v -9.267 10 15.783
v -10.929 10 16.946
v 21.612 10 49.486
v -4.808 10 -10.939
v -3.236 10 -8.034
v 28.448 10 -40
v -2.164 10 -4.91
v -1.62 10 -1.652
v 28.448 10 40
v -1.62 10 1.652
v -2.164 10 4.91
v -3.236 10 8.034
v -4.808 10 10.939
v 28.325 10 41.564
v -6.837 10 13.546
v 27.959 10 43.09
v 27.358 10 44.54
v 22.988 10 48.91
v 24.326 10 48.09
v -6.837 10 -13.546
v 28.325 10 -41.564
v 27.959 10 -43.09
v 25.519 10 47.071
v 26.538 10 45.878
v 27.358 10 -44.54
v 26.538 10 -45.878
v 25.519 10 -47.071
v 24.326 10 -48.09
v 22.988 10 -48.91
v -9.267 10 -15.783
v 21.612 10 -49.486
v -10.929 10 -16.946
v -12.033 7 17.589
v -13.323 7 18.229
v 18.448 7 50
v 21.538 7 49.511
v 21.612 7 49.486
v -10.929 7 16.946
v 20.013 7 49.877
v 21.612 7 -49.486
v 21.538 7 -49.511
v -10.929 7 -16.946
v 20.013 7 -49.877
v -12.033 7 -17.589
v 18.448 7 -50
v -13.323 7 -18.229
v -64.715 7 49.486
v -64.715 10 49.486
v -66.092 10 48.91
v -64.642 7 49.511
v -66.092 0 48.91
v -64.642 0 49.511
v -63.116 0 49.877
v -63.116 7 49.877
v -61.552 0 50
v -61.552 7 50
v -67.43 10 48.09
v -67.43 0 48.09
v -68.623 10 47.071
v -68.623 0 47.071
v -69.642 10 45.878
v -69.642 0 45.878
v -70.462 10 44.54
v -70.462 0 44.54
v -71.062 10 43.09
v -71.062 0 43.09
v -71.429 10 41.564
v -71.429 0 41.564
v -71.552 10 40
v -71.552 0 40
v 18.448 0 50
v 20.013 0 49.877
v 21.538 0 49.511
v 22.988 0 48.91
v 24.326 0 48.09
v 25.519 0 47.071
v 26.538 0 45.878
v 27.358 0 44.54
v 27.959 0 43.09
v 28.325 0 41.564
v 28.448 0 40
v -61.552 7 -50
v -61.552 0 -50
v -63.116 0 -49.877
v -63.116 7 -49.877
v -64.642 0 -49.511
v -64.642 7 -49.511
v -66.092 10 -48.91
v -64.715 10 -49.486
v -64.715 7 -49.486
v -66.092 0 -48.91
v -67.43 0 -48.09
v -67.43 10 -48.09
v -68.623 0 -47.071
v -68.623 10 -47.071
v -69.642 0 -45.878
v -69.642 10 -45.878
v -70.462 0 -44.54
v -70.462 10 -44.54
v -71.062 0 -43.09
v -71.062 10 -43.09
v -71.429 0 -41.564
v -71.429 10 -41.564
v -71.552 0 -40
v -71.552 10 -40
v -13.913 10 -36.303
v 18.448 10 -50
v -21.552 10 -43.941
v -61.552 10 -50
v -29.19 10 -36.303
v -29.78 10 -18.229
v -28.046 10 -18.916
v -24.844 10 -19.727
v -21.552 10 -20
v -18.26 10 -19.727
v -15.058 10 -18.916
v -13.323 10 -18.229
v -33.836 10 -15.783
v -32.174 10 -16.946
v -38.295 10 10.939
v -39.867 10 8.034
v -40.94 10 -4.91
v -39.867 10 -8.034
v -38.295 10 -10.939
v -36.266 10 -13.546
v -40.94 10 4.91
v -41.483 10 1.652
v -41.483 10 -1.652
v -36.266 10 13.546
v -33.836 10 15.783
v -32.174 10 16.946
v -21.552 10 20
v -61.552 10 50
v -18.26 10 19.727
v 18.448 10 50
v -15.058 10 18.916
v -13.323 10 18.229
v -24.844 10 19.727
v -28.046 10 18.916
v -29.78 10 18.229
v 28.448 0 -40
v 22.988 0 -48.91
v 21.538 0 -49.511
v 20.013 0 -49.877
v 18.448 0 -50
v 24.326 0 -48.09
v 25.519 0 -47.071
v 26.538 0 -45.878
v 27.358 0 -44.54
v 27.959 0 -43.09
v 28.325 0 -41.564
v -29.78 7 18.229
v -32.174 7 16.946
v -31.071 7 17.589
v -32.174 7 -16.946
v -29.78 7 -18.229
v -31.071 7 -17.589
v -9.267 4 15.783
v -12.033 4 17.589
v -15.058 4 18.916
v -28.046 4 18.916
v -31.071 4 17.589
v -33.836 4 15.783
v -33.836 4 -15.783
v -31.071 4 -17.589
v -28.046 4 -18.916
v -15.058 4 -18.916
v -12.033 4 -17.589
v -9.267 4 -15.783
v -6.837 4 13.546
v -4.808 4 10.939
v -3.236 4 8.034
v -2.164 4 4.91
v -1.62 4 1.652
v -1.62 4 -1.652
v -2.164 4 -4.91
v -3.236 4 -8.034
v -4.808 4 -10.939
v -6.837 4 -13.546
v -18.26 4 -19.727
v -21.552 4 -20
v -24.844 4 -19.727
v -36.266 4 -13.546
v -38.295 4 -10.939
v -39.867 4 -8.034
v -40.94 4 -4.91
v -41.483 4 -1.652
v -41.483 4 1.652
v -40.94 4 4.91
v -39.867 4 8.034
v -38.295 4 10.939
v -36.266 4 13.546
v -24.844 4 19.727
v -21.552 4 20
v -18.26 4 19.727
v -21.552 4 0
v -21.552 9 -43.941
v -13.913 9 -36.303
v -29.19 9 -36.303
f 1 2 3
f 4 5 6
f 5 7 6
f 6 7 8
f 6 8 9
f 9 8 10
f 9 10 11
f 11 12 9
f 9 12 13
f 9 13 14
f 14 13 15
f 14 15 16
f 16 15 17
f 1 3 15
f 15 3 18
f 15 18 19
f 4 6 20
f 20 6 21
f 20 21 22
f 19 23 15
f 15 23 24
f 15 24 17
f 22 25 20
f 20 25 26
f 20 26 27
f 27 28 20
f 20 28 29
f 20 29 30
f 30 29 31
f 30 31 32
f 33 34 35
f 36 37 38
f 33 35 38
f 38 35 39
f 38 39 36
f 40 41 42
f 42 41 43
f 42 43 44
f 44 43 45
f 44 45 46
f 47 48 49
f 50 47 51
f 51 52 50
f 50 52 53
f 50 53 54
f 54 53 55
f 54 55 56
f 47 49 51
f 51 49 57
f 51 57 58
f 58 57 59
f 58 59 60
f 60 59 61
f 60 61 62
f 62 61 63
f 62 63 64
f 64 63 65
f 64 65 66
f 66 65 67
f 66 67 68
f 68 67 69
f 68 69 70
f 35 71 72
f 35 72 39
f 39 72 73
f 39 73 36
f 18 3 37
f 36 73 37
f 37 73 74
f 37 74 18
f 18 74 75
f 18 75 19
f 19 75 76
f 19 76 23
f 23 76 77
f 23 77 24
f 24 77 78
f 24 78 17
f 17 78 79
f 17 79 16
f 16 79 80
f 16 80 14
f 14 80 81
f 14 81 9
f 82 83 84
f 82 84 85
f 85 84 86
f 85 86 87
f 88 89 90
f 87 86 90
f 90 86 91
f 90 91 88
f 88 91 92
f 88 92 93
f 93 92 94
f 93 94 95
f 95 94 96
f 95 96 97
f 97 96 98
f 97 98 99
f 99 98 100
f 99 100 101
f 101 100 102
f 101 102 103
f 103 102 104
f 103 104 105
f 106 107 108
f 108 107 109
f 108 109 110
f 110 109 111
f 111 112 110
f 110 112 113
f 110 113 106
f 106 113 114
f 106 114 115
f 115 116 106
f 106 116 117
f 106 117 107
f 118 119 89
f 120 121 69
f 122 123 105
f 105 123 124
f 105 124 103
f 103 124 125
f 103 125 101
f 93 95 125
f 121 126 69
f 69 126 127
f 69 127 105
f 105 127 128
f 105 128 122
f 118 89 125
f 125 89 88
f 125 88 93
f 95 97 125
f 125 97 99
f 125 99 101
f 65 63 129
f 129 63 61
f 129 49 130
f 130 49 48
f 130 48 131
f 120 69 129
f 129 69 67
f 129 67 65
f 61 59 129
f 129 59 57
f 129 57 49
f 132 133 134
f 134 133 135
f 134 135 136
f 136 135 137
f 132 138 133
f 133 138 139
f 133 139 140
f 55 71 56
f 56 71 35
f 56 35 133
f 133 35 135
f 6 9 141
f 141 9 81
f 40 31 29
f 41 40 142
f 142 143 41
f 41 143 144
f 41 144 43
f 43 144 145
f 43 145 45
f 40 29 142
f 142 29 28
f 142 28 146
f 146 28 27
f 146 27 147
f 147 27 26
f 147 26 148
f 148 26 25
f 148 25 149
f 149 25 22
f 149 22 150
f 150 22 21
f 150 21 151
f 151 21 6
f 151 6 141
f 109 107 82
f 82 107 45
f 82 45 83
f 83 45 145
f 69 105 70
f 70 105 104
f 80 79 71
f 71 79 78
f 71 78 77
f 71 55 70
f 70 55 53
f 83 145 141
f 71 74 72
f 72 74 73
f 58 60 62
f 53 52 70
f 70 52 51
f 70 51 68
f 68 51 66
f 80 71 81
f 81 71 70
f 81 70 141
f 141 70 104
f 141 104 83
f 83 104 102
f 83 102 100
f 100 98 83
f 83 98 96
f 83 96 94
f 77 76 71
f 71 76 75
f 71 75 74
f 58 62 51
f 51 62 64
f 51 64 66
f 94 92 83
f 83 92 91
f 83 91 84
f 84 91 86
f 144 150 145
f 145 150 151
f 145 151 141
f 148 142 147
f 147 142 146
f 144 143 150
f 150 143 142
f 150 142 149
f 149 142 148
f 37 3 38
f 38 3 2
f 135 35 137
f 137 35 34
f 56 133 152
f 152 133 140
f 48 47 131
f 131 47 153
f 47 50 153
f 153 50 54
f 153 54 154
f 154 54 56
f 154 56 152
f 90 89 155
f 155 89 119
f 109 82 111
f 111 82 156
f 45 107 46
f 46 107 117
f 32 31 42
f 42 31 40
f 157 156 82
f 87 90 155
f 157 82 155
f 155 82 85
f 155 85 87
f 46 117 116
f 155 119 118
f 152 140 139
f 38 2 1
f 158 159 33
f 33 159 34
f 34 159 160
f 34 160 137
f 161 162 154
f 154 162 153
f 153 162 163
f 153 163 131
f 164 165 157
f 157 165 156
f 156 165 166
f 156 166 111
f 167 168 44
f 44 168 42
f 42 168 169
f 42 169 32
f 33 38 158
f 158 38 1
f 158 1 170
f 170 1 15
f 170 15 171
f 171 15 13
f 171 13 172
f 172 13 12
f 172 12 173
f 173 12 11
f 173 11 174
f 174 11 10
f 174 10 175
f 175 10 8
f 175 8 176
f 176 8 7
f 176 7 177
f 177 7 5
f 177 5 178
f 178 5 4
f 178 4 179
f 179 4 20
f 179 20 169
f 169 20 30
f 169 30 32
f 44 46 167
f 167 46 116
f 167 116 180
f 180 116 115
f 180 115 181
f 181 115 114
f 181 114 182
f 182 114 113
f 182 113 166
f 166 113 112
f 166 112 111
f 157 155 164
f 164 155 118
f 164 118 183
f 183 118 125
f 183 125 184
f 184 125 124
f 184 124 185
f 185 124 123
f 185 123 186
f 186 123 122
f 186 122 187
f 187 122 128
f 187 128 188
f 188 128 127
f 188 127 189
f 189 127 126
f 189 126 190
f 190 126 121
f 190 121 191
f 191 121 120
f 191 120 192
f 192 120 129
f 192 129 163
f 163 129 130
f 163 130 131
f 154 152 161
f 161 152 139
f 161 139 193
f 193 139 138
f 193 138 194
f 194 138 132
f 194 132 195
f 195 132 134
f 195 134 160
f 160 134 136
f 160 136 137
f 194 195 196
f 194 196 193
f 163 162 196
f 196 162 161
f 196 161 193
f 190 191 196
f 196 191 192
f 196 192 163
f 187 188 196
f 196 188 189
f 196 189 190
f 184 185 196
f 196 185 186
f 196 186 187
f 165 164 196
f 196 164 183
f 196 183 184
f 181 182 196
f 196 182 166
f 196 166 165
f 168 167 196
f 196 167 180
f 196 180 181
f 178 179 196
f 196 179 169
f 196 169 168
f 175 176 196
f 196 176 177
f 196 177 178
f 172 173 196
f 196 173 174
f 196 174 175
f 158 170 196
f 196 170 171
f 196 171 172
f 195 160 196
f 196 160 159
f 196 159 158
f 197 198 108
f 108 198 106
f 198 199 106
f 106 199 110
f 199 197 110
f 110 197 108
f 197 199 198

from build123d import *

# Parameters (mm, degrees)
EXTRUDE_1_DEPTH     = 10
CUT_EXTRUDE_START   = -3
CUT_EXTRUDE_1_DEPTH = 3
SKETCH_3_R          = 20
CUT_EXTRUDE_2_DEPTH = 6
CUT_EXTRUDE_3_DEPTH = 1


with BuildPart() as part:
    # 草图1 → 凸台-拉伸1 (new body)
    with BuildSketch(Plane(origin=(0, 0, 0), x_dir=(1, 0, 0), z_dir=(0, 1, 0))):
        with BuildLine():
            Line((-61.551724138, 50), (18.448275862, 50))
            ThreePointArc((18.448275862, 50), (25.519343674, 47.071067812), (28.448275862, 40))
            Line((28.448275862, 40), (28.448275862, -40))
            ThreePointArc((28.448275862, -40), (25.519343674, -47.071067812), (18.448275862, -50))
            Line((18.448275862, -50), (-61.551724138, -50))
            ThreePointArc((-61.551724138, -50), (-68.62279195, -47.071067812), (-71.551724138, -40))
            Line((-71.551724138, -40), (-71.551724138, 40))
            ThreePointArc((-71.551724138, 40), (-68.62279195, 47.071067812), (-61.551724138, 50))
        make_face()
    extrude(amount=EXTRUDE_1_DEPTH)

    # 草图2 → 切除-拉伸1 (cut)
    with BuildSketch(Plane(origin=(0, 10, 0), x_dir=(1, 0, 0), z_dir=(0, 1, 0)).offset(CUT_EXTRUDE_START)):
        with BuildLine():
            Line((-21.551724138, 10), (-61.551724138, 50))
            ThreePointArc((-61.551724138, 50), (-63.154135948, 49.870778915), (-64.715134679, 49.486455279))
            Line((-64.715134679, 49.486455279), (-21.551724138, 6.323044738))
            Line((-21.551724138, 6.323044738), (21.611686403, 49.486455279))
            ThreePointArc((21.611686403, 49.486455279), (20.050687672, 49.870778915), (18.448275862, 50))
            Line((18.448275862, 50), (-21.551724138, 10))
        make_face()
        with BuildLine():
            Line((-21.551724138, -10), (18.448275862, -50))
            ThreePointArc((18.448275862, -50), (20.050687672, -49.870778915), (21.611686403, -49.486455279))
            Line((21.611686403, -49.486455279), (-21.551724138, -6.323044738))
            Line((-21.551724138, -6.323044738), (-64.715134679, -49.486455279))
            ThreePointArc((-64.715134679, -49.486455279), (-63.154135948, -49.870778915), (-61.551724138, -50))
            Line((-61.551724138, -50), (-21.551724138, -10))
        make_face()
    extrude(amount=CUT_EXTRUDE_1_DEPTH, mode=Mode.SUBTRACT)

    # 草图3 → 切除-拉伸2 (cut)
    with BuildSketch(Plane(origin=(0, 10, 0), x_dir=(1, 0, 0), z_dir=(0, 1, 0))):
        with Locations(Location((-21.551724138, 0, 0), (0, 0, 270))):
            Circle(SKETCH_3_R)
    extrude(amount=-CUT_EXTRUDE_2_DEPTH, mode=Mode.SUBTRACT)

    # 草图5 → 切除-拉伸3 (cut)
    with BuildSketch(Plane(origin=(0, 10, 0), x_dir=(1, 0, 0), z_dir=(0, 1, 0))):
        Polygon((-21.551724138, 43.940949844), (-29.190091611, 36.302582371), (-13.913356665, 36.302582371), align=None)
    extrude(amount=-CUT_EXTRUDE_3_DEPTH, mode=Mode.SUBTRACT)


solid = part.part
